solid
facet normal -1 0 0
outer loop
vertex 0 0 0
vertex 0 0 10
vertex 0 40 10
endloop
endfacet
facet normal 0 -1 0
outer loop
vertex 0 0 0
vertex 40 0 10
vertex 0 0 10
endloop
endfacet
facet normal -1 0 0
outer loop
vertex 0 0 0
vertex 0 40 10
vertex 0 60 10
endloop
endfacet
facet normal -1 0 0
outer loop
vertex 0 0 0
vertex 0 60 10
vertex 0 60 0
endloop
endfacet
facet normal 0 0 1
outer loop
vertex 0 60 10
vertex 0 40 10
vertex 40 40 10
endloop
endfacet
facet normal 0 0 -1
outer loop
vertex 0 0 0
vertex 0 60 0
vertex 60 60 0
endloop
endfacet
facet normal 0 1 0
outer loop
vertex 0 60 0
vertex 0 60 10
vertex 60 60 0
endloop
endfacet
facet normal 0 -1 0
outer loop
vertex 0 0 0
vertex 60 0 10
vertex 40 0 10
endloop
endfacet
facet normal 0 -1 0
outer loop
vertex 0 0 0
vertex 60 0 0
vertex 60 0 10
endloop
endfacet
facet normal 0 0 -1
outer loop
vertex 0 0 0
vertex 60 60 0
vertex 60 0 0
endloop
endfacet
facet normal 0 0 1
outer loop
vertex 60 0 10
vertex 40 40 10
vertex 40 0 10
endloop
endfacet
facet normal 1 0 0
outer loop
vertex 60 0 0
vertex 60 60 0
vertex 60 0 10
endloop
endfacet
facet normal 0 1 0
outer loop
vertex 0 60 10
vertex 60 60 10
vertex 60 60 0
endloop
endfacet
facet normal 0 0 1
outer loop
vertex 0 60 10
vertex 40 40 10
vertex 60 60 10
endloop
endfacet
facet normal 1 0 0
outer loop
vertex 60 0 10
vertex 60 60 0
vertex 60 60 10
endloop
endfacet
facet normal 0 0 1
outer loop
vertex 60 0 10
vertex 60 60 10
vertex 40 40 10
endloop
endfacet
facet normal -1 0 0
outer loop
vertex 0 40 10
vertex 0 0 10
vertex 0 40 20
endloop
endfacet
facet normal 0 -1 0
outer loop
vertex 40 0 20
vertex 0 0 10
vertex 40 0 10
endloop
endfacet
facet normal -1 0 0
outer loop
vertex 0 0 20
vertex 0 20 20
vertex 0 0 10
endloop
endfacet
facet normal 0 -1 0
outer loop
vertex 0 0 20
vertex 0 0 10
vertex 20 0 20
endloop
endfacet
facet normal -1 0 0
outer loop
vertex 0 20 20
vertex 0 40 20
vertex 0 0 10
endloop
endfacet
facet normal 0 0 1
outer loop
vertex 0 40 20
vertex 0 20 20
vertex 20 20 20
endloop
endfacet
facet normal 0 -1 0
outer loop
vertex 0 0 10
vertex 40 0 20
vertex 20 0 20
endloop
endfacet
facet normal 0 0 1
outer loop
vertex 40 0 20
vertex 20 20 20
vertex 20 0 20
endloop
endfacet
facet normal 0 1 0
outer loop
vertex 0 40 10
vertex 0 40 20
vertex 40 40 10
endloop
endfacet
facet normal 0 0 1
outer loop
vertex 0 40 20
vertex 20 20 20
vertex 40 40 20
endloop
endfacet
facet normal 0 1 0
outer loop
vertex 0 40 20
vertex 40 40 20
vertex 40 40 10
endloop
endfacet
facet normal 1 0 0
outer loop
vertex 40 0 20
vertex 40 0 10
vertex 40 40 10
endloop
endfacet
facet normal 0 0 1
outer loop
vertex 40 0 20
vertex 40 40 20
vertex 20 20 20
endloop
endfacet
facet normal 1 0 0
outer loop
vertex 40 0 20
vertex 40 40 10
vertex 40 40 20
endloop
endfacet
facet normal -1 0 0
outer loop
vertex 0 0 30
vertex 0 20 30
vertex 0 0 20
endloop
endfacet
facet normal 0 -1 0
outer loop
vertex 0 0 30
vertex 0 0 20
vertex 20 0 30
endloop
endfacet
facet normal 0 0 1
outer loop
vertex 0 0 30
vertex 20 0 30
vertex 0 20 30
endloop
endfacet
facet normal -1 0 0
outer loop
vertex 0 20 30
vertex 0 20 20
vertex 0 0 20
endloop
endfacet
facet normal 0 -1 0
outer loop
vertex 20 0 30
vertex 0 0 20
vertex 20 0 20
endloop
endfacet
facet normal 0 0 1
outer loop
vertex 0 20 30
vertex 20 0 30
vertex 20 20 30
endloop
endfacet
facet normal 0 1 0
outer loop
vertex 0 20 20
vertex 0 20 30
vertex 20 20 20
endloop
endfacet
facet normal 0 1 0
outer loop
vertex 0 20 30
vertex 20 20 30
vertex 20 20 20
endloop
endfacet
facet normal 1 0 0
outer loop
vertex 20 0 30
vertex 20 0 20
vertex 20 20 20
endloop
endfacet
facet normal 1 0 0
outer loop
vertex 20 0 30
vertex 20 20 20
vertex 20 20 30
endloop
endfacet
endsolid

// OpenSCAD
module slab(w) {
    cube([w, w, 10], center=[true, true, false]);
}

slab(60);
translate([0, 0, 10]) slab(40);
translate([0, 0, 20]) slab(20);
